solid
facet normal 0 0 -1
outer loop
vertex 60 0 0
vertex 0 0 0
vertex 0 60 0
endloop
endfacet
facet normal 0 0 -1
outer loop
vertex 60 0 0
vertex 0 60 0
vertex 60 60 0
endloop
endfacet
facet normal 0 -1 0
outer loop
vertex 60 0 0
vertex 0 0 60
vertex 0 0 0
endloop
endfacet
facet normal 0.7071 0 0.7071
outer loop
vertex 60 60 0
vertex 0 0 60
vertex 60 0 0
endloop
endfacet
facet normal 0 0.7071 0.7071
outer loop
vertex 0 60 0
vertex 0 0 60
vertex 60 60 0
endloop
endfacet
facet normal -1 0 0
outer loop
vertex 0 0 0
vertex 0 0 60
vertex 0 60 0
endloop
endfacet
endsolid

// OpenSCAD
// file 3_pyramid_puzzle.scad
// creates 3 oblique square pyramids which collectively form a cube
// (c) 2020 Rich Cameron
// released under a Creative Commons CC-BY 4.0 International License

size = 60; //length of the side of the cube, mm

linear_extrude(size, scale = 0) square(size);
